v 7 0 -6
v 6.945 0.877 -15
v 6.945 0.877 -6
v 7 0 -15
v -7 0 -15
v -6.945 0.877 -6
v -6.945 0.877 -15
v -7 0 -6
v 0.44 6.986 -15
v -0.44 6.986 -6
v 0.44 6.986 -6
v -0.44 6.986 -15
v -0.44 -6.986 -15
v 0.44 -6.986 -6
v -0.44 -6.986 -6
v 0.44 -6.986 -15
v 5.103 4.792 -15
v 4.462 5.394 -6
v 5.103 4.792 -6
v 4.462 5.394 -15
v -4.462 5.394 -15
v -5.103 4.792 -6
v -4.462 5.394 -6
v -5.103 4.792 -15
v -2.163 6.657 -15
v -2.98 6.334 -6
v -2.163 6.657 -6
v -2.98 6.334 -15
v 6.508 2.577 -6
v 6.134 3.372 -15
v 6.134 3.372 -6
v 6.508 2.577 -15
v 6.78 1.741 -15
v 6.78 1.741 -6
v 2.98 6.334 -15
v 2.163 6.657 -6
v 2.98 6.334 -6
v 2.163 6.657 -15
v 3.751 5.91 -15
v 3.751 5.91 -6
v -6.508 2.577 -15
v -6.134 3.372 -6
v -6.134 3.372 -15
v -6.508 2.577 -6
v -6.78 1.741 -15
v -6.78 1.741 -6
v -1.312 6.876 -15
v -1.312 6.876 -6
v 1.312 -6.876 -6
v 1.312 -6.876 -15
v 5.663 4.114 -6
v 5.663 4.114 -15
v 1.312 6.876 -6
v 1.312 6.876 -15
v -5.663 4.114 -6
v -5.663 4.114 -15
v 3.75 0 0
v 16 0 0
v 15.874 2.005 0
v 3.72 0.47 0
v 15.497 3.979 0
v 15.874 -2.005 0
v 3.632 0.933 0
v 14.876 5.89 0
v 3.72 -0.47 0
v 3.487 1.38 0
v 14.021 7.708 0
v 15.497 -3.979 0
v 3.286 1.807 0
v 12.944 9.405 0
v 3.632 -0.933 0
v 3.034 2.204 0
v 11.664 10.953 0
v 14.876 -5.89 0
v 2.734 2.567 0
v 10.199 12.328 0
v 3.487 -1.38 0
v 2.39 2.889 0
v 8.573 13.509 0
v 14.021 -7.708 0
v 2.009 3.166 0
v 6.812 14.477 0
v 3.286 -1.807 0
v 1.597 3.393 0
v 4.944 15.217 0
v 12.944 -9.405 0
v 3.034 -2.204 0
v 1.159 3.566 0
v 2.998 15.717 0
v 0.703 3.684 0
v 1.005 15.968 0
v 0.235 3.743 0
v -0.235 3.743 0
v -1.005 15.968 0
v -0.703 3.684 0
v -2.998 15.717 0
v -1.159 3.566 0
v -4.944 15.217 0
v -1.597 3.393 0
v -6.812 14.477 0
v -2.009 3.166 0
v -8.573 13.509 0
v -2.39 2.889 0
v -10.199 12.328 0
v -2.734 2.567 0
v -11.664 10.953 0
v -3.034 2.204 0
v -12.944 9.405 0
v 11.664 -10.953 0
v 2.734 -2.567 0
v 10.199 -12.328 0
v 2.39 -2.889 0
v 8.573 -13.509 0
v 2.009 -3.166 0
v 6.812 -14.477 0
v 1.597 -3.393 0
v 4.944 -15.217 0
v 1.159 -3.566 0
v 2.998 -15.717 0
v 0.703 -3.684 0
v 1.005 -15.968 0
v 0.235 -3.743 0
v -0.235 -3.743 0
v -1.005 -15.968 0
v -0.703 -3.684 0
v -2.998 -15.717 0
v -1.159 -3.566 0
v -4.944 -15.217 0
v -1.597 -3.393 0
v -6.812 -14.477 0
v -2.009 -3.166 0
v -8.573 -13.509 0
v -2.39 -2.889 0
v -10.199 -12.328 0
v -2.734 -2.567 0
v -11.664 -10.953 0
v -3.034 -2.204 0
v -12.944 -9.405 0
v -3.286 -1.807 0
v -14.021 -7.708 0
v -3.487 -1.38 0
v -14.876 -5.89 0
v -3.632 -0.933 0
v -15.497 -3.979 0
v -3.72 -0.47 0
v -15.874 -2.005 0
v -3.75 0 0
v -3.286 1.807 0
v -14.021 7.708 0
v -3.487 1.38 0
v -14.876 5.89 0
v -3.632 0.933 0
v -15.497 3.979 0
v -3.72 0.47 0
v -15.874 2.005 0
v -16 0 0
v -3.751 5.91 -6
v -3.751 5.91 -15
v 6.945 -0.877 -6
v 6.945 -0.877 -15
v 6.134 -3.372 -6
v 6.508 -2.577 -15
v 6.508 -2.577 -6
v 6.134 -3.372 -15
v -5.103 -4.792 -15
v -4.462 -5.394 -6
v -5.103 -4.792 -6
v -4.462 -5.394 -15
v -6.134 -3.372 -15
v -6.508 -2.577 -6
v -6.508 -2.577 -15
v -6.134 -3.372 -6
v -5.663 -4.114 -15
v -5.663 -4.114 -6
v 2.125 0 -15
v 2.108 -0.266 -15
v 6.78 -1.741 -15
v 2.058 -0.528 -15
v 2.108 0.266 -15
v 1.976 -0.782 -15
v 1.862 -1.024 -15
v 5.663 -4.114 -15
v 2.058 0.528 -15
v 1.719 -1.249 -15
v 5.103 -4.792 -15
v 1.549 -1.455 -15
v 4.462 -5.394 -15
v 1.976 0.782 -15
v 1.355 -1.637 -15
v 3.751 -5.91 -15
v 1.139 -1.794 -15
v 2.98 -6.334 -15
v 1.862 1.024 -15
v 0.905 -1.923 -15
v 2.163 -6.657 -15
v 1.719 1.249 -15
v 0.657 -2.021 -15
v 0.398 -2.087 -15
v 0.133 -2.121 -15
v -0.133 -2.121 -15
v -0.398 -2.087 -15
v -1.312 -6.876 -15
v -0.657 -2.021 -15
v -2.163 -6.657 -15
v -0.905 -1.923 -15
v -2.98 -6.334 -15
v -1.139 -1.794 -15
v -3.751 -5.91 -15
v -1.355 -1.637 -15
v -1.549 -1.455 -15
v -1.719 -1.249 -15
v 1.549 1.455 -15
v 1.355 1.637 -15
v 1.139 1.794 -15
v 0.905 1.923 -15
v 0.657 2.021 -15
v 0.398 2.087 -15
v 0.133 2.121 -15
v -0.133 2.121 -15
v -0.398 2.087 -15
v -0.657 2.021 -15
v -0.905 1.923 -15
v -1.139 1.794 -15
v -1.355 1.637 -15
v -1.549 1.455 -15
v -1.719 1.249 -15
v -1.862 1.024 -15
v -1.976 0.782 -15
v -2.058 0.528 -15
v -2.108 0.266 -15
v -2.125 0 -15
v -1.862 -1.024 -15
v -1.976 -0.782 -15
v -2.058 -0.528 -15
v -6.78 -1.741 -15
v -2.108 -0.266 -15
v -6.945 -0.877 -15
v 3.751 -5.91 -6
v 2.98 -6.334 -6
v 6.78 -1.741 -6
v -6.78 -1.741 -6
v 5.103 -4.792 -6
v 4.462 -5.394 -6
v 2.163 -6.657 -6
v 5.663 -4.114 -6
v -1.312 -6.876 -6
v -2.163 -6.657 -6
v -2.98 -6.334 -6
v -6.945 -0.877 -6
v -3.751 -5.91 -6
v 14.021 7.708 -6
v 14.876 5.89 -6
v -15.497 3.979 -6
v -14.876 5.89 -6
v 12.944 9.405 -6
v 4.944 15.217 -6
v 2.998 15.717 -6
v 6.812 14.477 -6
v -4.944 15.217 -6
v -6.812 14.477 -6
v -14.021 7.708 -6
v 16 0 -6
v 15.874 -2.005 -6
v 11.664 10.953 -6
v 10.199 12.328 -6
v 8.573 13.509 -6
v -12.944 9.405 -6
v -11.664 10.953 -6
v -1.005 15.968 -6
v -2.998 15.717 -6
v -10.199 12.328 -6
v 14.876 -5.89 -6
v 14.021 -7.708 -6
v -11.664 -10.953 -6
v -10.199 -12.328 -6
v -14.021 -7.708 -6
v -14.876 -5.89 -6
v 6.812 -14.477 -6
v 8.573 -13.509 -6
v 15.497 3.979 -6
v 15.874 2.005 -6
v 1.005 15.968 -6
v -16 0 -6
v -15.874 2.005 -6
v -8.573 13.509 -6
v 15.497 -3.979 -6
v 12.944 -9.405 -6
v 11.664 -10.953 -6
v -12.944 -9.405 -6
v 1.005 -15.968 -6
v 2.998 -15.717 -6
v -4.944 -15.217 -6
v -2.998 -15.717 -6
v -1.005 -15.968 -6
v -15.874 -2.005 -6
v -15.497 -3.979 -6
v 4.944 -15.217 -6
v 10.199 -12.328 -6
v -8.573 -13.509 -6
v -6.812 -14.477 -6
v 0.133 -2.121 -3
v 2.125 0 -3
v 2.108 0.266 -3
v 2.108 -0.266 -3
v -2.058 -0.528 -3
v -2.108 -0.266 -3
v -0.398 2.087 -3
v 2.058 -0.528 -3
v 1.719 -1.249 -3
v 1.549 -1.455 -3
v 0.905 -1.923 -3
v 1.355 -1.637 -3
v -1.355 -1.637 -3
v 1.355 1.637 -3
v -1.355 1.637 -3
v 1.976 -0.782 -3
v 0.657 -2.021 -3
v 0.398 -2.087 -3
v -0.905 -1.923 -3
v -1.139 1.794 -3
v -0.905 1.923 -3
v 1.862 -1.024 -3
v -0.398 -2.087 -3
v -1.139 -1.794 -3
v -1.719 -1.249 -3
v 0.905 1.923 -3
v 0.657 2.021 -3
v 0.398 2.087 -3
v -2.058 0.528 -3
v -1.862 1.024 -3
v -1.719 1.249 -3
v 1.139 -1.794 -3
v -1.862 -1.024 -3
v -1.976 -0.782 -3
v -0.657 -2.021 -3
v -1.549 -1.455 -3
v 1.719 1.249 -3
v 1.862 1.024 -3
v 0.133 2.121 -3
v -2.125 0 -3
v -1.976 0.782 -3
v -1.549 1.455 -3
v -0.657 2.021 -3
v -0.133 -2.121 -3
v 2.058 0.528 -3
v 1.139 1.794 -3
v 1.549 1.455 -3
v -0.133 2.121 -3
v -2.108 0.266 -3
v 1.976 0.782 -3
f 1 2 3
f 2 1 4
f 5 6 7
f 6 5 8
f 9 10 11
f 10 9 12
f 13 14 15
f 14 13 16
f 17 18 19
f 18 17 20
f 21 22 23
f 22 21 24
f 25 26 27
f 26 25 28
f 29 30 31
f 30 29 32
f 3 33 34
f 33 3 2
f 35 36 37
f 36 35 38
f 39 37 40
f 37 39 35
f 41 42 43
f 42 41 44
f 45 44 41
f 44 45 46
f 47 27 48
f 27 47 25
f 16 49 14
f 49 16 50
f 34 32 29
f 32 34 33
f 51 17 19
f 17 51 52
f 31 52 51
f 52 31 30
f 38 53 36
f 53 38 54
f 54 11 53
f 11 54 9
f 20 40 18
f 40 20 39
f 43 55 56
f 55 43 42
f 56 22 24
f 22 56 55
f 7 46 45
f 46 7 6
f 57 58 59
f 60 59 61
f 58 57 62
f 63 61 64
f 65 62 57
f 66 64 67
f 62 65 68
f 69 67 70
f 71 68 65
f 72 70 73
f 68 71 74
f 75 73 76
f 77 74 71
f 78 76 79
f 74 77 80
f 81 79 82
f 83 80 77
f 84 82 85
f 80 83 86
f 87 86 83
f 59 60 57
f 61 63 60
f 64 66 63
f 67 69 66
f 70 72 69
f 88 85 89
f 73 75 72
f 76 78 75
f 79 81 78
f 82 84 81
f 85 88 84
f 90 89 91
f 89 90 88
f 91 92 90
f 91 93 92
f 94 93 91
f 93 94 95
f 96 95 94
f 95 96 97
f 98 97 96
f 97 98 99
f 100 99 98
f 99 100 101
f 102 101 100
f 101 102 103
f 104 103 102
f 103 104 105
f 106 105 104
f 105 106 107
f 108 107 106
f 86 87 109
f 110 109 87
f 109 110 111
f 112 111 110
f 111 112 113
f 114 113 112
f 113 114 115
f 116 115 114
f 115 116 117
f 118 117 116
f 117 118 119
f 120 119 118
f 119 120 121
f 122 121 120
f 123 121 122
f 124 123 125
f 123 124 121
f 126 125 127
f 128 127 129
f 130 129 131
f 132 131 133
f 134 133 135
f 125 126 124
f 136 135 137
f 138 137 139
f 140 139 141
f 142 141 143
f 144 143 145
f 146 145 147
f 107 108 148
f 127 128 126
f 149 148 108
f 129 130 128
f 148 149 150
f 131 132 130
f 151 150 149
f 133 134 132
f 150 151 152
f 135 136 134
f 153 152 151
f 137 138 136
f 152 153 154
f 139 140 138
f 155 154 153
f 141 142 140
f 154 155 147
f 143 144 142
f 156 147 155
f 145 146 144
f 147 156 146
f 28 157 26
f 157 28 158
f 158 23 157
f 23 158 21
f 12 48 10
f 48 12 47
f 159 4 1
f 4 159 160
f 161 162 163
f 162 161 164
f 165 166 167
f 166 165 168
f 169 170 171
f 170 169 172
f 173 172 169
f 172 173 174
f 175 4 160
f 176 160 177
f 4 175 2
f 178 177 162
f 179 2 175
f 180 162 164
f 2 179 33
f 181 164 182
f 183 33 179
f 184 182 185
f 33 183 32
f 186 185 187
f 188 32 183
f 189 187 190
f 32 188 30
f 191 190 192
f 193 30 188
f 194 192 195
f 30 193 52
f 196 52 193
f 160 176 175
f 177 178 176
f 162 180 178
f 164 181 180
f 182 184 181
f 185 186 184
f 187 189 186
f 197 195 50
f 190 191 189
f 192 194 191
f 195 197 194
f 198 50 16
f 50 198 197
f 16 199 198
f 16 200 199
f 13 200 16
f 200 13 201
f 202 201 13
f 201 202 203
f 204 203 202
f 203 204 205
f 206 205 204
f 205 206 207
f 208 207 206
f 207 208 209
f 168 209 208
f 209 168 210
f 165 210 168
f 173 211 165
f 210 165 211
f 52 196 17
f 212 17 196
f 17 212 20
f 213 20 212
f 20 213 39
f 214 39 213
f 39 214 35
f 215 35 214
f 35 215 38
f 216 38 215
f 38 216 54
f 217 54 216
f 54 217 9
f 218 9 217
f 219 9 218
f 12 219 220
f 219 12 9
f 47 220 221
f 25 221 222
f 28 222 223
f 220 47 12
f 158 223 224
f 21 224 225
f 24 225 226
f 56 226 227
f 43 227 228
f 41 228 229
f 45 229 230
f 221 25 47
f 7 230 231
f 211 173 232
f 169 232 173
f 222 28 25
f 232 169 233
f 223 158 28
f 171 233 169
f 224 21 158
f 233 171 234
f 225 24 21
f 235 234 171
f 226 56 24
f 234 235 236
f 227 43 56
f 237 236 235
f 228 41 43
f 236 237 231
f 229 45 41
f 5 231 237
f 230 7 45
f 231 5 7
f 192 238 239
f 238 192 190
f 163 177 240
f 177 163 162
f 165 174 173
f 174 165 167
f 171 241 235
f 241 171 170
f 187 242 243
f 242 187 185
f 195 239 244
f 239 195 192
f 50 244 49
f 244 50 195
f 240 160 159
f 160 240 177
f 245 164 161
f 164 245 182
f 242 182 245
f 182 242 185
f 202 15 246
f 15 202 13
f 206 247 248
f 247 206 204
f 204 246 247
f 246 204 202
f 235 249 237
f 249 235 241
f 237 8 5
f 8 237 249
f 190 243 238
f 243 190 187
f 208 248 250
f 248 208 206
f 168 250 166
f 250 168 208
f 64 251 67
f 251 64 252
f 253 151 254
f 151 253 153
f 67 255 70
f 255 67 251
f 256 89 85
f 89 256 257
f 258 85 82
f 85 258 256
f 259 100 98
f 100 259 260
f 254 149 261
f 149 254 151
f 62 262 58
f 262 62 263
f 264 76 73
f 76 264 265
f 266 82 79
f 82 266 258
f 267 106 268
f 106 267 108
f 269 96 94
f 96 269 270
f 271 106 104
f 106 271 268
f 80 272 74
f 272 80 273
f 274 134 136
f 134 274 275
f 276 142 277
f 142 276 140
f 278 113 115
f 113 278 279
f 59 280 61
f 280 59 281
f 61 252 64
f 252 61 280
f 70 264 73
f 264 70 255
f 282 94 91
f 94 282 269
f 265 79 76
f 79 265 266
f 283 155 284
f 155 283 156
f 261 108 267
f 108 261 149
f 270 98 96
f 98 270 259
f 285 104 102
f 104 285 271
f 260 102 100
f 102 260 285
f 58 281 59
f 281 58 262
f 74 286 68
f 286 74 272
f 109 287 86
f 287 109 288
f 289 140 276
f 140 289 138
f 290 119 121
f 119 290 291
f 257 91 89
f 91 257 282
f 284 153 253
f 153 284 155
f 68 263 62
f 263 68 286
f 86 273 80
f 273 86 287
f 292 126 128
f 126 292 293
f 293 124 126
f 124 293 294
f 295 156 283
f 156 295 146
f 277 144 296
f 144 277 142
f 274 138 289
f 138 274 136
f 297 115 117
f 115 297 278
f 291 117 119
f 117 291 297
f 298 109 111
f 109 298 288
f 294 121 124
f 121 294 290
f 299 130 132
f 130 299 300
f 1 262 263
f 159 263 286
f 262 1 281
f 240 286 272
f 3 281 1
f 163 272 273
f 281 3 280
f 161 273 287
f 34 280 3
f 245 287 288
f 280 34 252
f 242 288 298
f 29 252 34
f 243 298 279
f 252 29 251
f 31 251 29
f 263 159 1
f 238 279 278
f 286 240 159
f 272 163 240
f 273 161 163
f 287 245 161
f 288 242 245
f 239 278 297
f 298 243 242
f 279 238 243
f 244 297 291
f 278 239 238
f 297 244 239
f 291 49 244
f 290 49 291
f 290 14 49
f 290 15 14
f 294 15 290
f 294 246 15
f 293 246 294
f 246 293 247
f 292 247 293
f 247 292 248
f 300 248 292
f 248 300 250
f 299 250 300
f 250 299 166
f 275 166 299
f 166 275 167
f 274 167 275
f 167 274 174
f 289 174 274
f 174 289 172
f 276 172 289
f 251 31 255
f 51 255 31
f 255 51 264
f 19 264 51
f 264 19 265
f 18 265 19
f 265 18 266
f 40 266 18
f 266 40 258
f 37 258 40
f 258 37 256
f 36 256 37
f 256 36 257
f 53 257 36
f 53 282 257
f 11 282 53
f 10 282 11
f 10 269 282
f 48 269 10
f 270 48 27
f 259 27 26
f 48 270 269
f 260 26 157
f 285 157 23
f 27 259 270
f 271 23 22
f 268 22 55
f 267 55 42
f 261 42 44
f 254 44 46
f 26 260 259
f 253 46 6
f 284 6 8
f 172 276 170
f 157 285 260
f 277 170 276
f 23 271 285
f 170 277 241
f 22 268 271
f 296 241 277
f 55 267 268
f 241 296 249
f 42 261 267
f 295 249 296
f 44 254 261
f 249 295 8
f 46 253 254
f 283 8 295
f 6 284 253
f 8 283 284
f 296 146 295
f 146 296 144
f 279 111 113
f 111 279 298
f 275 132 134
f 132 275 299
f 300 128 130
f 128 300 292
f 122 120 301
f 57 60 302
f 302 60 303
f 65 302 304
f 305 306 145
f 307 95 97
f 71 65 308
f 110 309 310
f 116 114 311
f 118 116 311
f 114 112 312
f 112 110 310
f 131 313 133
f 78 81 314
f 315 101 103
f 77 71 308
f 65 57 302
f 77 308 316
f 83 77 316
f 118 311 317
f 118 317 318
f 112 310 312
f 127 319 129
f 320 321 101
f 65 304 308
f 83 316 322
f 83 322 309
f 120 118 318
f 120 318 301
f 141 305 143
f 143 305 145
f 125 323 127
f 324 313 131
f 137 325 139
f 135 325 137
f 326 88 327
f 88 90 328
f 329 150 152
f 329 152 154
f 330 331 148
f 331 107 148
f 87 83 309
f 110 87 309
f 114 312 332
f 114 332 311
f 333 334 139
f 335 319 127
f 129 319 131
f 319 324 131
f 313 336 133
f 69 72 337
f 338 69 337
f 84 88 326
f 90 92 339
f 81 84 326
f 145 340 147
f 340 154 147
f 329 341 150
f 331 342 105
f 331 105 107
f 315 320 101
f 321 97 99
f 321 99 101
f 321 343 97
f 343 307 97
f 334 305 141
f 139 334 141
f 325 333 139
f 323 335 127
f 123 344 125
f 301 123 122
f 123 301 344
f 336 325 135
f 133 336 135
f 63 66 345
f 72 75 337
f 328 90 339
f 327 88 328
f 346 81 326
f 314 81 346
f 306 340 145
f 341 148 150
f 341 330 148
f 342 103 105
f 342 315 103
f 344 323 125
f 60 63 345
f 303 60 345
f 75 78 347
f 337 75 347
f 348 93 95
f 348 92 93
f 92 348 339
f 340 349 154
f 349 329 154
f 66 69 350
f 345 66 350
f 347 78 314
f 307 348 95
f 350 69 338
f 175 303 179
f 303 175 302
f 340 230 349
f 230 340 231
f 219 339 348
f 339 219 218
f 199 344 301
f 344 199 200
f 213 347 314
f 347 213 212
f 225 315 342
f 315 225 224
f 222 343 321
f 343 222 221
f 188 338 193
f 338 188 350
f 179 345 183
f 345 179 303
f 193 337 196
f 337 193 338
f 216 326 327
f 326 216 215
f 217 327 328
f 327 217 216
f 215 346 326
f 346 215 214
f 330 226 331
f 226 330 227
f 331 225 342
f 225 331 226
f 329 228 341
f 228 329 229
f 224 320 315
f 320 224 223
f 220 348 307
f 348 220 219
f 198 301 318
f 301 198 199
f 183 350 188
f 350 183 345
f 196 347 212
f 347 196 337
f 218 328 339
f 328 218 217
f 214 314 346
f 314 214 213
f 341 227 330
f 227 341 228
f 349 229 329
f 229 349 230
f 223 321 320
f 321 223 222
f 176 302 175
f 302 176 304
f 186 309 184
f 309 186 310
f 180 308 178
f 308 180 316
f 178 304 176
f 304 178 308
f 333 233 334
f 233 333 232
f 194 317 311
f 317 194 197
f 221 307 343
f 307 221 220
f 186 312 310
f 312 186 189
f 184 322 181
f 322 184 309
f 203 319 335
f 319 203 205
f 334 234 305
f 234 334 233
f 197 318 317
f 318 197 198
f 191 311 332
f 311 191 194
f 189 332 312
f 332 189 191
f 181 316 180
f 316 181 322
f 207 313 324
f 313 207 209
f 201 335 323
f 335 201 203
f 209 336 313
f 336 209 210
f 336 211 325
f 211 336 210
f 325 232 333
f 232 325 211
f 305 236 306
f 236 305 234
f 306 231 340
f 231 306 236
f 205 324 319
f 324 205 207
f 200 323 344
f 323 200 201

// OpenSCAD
$fn = 50;


difference() {
	union() {
		translate(v = [0, 0, -15.0000000000]) {
			cylinder(h = 15, r = 7.0000000000);
		}
		translate(v = [0, 0, -6.0000000000]) {
			cylinder(h = 6, r = 16.0000000000);
		}
	}
	union() {
		translate(v = [0, 0, 0]) {
			rotate(a = [0, 0, 0]) {
				difference() {
					union() {
						#translate(v = [0, 0, -15.0000000000]) {
							cylinder(h = 15, r = 2.0000000000);
						}
						#translate(v = [0, 0, -3]) {
							cylinder(h = 3, r = 7.0000000000, r1 = 2.1250000000, r2 = 3.7500000000);
						}
						#translate(v = [0, 0, -15.0000000000]) {
							cylinder(h = 15, r = 2.1250000000);
						}
						#translate(v = [0, 0, -15.0000000000]) {
							cylinder(h = 15, r = 2.0000000000);
						}
					}
					union();
				}
			}
		}
	}
}
